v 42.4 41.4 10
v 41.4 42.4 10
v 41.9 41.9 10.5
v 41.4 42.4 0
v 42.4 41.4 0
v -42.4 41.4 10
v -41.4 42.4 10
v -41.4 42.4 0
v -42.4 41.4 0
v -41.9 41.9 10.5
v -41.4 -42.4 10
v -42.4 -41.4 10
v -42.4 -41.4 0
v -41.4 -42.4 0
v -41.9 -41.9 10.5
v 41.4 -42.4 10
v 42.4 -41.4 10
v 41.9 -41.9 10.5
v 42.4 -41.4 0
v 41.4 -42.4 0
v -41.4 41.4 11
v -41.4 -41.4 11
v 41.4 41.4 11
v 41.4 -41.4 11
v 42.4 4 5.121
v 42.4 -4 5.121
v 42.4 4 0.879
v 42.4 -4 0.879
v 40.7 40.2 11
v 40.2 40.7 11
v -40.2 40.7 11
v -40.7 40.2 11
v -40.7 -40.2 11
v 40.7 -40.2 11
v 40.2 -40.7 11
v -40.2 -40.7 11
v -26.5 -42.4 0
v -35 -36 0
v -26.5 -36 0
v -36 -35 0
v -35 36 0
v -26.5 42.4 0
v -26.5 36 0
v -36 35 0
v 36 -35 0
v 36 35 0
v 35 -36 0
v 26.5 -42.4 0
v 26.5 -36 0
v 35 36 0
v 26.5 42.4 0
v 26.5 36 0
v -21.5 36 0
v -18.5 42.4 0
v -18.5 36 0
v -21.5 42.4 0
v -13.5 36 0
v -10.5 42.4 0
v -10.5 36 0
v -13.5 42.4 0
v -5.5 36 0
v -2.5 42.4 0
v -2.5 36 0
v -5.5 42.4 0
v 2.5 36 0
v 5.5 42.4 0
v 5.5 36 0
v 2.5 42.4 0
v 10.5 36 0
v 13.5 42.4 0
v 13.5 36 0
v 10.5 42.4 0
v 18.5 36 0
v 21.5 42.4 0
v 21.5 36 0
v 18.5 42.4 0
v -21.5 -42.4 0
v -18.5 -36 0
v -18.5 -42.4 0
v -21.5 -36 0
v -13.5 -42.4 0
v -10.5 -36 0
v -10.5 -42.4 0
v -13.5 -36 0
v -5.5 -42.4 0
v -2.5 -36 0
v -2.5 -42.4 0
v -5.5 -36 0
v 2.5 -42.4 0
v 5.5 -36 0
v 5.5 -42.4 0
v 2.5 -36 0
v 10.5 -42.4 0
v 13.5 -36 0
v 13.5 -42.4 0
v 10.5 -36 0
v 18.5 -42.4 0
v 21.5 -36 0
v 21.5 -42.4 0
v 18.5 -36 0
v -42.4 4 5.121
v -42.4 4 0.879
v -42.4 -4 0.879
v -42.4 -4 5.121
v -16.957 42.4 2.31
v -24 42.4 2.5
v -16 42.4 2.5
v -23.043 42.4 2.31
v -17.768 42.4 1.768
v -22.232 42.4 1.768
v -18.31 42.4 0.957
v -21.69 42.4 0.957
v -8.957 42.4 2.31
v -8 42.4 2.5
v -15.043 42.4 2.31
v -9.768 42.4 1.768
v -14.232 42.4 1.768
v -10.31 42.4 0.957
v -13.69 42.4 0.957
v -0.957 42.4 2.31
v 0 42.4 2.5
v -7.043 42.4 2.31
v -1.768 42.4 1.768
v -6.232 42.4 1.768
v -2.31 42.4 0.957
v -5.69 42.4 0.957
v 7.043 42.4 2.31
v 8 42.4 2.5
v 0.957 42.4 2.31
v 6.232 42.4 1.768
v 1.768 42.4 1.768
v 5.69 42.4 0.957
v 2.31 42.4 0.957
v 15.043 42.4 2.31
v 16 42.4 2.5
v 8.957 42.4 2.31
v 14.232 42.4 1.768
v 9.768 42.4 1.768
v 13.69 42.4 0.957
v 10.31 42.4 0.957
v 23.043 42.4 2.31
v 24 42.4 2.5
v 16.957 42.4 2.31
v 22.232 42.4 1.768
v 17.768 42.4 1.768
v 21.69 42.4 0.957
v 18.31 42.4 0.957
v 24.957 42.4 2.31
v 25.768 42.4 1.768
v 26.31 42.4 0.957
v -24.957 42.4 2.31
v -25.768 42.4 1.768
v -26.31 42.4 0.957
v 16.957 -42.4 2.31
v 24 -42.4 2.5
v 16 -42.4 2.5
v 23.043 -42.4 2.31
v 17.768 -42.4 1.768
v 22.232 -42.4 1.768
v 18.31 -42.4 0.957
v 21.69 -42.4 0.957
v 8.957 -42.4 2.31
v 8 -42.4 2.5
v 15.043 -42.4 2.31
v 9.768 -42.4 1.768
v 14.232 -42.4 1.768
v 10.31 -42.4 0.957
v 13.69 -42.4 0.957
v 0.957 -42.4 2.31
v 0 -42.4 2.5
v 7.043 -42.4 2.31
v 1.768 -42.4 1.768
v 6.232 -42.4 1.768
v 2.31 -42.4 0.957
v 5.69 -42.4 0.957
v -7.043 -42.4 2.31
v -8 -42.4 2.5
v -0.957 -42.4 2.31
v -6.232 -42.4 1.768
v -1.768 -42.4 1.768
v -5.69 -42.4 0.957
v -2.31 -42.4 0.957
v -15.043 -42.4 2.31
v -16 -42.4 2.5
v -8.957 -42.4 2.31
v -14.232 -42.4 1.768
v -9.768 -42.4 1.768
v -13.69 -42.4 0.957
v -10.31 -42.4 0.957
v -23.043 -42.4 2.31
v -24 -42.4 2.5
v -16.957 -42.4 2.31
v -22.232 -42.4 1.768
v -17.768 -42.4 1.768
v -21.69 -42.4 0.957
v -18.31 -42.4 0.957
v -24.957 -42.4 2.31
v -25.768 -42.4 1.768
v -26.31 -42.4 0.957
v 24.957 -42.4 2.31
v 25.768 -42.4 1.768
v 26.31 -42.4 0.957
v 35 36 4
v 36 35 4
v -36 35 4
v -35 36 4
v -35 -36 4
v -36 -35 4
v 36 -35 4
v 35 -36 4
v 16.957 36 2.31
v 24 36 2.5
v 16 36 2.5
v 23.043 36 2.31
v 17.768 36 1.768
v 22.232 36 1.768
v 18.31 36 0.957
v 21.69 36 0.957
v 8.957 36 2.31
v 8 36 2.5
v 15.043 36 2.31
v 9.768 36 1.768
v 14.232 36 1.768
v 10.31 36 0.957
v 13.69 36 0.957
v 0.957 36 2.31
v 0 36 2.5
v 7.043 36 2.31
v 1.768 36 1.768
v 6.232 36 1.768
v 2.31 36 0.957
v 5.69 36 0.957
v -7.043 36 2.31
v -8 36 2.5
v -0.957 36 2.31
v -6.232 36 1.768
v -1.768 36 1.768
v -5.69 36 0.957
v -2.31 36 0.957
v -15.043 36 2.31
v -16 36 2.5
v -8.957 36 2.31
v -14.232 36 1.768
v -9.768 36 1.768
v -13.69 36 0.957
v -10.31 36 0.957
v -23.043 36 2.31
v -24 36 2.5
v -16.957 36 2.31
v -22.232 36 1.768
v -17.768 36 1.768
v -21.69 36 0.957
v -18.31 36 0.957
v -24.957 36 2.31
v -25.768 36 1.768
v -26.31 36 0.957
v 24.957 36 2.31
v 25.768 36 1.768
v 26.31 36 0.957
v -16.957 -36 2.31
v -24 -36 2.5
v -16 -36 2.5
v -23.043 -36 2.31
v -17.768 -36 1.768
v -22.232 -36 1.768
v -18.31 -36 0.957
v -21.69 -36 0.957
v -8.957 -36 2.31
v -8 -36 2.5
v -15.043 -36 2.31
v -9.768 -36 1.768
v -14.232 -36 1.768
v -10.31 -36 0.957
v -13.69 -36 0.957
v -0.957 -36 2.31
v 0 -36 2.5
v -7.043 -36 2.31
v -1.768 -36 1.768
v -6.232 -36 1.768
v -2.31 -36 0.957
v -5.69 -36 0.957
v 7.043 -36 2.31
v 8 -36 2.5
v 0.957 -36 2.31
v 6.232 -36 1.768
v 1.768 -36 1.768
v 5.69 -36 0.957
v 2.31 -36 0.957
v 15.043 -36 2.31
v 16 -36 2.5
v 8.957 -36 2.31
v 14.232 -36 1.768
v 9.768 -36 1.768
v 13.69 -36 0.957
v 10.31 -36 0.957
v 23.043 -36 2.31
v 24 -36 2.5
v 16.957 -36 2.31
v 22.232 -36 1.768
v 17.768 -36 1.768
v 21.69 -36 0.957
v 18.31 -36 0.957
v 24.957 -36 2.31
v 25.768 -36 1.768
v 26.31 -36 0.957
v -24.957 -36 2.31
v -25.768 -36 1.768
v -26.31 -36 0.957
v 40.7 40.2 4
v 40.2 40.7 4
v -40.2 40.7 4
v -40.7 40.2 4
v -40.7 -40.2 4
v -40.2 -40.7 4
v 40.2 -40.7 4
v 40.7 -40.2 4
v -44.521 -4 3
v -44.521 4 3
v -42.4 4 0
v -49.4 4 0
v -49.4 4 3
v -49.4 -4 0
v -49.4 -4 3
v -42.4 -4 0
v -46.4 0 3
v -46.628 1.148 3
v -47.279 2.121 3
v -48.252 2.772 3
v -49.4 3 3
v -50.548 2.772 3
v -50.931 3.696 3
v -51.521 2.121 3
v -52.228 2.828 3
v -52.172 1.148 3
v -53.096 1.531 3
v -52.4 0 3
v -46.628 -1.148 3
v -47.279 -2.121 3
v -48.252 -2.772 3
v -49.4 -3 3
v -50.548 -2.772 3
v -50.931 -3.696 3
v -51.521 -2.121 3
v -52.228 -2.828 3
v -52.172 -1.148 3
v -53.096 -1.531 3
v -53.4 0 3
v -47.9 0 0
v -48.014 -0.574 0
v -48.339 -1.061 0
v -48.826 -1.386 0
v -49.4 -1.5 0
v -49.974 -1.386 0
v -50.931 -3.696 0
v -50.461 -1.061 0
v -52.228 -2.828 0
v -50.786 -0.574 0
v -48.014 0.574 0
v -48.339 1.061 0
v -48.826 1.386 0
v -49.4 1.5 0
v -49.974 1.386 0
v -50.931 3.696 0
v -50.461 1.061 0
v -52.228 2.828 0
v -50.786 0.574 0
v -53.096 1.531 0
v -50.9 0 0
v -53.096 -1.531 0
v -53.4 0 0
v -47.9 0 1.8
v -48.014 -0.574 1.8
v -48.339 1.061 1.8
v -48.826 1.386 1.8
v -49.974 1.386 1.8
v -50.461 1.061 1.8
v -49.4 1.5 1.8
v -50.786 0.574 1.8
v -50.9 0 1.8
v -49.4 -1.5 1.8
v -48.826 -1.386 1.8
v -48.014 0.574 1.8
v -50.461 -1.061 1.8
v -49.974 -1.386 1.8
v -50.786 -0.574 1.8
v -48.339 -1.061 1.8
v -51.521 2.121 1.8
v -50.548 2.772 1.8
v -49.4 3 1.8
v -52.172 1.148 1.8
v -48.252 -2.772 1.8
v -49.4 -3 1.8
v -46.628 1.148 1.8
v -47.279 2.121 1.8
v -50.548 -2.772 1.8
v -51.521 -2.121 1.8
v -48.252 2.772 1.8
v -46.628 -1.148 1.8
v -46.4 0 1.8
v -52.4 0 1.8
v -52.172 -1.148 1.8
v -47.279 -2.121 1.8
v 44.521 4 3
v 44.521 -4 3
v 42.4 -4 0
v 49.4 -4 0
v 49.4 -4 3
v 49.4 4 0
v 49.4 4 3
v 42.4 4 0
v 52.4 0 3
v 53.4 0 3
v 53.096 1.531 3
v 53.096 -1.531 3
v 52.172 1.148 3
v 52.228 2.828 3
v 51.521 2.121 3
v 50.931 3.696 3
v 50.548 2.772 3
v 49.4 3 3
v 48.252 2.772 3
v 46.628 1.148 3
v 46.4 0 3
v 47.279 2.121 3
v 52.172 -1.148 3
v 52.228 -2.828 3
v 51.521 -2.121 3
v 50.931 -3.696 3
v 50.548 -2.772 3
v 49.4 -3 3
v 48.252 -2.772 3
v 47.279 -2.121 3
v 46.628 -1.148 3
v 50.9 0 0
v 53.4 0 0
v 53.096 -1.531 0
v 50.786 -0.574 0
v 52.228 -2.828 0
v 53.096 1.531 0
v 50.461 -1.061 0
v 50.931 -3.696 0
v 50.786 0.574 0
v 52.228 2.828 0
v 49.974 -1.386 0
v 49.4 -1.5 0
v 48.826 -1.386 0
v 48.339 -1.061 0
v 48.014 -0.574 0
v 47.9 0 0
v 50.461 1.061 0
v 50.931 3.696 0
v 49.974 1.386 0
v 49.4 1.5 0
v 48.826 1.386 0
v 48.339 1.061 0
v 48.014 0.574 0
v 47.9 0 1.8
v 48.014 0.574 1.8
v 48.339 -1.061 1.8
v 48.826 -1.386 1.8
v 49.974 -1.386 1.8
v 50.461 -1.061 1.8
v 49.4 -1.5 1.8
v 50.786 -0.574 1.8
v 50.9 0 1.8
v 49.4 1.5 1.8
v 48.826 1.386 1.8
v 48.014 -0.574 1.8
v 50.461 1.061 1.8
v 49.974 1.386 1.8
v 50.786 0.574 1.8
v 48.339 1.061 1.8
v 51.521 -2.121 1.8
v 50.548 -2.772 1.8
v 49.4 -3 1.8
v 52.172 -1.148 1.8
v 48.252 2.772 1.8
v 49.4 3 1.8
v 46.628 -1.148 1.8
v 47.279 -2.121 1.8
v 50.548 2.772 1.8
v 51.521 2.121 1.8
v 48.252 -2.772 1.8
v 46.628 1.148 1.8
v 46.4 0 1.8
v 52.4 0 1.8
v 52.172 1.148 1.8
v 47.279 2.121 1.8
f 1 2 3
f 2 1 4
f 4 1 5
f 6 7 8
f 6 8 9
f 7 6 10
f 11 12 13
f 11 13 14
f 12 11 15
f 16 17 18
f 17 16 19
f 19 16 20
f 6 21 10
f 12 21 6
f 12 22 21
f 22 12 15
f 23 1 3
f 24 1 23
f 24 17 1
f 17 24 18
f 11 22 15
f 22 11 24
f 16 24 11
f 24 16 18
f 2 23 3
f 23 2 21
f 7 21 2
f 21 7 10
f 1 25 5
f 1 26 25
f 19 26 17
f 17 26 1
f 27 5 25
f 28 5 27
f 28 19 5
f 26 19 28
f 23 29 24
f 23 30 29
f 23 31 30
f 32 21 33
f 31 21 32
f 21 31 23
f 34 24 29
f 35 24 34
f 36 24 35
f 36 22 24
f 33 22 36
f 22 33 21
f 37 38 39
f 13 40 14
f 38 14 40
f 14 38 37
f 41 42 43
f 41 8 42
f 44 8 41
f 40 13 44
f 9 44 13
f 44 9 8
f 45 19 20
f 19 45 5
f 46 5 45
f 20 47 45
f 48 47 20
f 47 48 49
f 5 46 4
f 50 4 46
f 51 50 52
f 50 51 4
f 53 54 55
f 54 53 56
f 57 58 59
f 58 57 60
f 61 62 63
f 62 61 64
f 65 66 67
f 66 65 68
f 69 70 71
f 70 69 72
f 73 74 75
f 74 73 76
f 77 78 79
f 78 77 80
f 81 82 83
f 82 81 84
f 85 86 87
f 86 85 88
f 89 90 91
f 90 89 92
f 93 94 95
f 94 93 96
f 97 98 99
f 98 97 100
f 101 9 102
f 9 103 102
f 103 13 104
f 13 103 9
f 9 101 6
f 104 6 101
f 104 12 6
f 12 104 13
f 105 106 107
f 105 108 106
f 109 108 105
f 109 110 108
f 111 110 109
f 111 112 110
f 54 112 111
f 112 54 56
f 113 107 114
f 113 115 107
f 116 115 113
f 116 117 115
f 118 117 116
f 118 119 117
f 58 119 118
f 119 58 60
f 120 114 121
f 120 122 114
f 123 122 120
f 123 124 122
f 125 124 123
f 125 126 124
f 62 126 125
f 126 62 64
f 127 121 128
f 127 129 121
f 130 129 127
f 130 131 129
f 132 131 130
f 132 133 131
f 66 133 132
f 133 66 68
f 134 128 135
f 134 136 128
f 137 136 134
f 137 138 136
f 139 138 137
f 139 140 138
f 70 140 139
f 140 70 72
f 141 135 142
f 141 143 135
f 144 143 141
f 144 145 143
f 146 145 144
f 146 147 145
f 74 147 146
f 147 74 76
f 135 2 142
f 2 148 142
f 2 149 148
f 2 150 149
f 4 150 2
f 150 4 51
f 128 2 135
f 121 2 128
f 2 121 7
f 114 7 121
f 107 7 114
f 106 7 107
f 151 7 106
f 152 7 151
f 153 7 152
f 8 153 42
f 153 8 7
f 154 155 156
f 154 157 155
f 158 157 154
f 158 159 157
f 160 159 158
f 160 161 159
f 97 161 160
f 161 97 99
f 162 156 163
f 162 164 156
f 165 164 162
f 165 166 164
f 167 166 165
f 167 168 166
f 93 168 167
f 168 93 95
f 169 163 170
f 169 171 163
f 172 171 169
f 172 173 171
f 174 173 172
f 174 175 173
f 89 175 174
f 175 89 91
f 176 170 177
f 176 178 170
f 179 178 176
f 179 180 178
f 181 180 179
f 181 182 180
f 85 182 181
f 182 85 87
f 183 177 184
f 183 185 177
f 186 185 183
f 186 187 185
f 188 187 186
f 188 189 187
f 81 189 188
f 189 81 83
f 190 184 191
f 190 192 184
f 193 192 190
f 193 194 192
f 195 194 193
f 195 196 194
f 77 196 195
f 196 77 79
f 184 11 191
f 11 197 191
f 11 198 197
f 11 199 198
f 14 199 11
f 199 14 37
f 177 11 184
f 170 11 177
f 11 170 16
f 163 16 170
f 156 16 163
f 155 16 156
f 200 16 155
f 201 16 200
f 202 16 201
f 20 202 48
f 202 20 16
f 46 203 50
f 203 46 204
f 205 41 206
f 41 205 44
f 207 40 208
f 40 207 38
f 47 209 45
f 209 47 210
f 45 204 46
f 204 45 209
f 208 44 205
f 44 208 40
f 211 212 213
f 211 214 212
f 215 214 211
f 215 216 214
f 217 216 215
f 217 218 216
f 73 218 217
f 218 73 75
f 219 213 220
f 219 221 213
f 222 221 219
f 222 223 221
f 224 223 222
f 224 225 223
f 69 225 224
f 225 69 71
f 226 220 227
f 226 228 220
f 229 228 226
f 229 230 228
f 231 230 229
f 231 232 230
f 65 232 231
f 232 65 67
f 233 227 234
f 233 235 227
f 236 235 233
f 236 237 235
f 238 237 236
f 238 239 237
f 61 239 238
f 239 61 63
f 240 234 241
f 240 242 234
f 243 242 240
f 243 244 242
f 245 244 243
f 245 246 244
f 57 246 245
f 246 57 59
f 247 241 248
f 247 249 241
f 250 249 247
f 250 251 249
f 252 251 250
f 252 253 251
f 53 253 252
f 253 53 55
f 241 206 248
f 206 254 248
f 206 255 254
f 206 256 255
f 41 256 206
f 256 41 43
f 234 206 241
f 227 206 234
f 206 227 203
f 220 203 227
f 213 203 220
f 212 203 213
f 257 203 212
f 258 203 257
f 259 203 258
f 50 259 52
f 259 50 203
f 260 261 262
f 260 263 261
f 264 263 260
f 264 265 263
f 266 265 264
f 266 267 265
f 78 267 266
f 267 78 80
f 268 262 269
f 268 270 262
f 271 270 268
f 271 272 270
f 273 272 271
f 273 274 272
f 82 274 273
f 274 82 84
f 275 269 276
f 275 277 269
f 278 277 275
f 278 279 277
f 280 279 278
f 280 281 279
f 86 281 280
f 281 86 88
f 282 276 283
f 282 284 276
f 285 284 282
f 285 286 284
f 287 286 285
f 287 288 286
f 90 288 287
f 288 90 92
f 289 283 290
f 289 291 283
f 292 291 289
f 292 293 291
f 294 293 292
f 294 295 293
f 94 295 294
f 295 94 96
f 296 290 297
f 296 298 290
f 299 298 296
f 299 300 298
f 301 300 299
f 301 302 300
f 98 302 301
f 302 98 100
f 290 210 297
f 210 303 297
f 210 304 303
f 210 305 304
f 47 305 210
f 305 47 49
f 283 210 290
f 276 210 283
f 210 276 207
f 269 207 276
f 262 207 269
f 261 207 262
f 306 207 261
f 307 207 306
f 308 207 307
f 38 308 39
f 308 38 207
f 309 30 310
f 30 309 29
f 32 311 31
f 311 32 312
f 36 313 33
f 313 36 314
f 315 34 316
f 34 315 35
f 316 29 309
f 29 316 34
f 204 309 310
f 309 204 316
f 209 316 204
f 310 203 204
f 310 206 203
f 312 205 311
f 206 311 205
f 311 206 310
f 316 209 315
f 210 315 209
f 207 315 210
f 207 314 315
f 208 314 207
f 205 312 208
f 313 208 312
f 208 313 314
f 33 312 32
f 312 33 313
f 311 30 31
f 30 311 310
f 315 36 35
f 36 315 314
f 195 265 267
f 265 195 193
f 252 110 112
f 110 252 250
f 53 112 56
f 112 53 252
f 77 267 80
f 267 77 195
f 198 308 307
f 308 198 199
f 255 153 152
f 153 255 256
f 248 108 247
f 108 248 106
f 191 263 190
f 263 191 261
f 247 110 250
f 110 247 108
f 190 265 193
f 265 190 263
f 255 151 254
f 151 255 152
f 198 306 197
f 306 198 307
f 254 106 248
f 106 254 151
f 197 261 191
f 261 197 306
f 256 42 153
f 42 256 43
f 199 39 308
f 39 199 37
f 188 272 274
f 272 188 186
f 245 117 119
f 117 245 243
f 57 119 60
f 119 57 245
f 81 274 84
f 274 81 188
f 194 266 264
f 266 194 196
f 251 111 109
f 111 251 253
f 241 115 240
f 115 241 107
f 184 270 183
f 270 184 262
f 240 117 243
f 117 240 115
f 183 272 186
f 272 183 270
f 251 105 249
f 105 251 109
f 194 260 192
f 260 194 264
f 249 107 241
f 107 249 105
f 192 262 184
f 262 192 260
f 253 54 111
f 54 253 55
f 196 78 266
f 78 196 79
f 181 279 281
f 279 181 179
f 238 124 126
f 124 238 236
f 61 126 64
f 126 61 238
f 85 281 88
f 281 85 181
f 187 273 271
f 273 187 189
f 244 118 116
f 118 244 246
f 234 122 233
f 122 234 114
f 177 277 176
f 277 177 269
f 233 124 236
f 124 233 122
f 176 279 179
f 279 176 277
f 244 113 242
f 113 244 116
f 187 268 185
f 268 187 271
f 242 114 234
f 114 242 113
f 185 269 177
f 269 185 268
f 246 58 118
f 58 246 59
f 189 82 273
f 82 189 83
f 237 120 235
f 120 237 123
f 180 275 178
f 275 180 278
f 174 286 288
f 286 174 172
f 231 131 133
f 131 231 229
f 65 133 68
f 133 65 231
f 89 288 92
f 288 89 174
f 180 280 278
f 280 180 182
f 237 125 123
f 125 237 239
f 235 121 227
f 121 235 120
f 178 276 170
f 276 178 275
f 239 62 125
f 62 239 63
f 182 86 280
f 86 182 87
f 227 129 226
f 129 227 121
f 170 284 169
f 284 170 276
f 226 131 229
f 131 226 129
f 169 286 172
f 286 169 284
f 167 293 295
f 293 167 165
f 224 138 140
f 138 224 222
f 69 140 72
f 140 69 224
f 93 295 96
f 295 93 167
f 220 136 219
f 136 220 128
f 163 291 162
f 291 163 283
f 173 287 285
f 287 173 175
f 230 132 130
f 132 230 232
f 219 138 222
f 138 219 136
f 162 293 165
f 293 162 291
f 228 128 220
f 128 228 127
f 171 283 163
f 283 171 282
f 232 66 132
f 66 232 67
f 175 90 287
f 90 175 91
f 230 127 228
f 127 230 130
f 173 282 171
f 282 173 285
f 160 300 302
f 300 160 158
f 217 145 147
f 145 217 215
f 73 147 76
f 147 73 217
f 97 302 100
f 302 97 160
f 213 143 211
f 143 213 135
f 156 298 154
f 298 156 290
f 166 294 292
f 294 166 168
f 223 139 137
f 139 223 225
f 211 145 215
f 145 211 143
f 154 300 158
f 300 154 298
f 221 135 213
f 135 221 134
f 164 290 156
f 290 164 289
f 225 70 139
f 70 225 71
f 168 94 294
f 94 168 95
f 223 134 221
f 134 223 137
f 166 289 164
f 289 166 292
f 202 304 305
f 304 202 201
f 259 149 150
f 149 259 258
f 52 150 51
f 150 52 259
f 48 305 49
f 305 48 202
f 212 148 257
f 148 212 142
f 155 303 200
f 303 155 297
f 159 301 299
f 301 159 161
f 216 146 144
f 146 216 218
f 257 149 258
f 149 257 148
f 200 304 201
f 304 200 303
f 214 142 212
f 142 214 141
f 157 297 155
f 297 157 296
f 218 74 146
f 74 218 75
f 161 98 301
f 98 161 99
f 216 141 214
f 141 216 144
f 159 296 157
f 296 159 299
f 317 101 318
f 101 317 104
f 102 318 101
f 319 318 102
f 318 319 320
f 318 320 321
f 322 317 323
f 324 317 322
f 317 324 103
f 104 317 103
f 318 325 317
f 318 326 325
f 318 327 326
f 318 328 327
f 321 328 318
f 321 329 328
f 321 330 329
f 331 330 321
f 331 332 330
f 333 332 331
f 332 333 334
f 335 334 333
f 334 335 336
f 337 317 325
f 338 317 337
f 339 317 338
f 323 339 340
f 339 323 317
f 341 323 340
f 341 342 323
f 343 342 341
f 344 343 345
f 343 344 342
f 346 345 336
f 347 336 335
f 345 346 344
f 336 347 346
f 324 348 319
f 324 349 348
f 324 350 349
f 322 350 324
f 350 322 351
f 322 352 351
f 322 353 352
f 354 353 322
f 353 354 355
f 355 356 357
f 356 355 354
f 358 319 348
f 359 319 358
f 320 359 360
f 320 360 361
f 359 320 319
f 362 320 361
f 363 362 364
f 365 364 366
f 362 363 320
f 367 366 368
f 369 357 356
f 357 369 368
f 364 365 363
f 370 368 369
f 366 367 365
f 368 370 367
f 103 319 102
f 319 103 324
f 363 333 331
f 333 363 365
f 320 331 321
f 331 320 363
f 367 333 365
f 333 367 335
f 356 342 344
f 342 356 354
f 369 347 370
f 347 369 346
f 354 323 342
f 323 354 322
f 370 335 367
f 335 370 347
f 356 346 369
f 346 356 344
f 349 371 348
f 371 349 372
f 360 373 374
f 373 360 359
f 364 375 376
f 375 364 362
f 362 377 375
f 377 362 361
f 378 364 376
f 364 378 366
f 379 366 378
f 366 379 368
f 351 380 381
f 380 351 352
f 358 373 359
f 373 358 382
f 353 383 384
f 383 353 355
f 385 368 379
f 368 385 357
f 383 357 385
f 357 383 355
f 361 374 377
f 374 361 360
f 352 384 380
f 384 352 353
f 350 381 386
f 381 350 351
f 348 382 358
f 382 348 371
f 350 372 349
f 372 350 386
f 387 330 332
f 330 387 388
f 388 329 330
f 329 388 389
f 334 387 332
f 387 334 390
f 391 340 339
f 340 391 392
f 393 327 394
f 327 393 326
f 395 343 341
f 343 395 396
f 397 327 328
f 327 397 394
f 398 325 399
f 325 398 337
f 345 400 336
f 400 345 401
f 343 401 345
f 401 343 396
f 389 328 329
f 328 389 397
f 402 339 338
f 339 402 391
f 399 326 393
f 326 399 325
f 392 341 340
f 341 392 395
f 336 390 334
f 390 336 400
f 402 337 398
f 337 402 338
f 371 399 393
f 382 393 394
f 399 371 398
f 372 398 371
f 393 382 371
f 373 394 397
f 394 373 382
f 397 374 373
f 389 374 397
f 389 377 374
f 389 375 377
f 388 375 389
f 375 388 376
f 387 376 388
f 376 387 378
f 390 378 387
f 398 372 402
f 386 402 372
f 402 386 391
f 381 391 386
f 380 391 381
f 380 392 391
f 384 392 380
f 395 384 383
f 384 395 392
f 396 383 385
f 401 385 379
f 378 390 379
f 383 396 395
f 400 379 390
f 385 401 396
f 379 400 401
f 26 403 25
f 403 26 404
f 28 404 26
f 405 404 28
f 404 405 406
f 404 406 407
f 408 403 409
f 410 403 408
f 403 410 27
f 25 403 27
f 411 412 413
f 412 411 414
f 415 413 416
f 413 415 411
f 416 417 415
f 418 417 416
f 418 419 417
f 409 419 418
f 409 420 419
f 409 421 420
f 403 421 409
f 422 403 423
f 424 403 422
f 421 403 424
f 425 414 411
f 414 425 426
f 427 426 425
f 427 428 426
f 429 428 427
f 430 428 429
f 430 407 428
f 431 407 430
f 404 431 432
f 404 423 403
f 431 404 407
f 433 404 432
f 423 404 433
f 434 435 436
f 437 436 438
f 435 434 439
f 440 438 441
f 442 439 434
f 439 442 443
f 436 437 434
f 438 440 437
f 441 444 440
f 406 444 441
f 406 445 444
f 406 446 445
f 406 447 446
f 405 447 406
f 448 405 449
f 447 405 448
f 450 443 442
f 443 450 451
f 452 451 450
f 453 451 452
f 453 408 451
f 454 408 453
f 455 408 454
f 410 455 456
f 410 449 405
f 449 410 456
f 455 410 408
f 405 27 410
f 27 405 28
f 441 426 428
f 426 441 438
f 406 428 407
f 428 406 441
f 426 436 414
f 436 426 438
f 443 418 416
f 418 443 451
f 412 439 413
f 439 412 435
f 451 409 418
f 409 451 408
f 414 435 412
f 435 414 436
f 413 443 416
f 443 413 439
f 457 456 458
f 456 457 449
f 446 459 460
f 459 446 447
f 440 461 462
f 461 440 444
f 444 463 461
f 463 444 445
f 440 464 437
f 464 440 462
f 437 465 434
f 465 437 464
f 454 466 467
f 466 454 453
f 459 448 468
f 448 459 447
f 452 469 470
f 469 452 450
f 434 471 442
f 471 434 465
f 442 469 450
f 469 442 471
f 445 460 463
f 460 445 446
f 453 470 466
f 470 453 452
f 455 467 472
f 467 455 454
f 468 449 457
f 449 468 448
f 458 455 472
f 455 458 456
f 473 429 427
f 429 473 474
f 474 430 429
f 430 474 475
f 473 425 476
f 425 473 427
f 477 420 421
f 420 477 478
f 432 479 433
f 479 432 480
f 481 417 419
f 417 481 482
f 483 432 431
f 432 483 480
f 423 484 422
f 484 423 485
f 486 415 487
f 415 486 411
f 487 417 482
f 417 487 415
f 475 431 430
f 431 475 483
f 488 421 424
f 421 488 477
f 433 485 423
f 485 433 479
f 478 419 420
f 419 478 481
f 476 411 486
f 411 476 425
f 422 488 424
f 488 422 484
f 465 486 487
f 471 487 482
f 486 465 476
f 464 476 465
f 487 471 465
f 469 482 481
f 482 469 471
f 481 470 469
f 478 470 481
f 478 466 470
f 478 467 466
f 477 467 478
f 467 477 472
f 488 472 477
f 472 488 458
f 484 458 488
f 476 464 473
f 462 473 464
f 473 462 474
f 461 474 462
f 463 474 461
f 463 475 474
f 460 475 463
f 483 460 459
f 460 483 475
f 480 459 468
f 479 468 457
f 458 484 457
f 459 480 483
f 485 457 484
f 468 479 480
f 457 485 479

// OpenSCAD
// file: light_matrix_lib.scad
/*

  light_matrix_lib.scad
  
*/

$fn=16;

outerLWDia = 5.0;
innerLWDia = 4.6;

xcnt=8;
ycnt=8;
xstep=10;
ystep=10;
xwidth=xcnt*xstep;
ywidth=ycnt*ystep;
matrixHeight=14;
frameWall=2;
framePedestalOuterWidth=0.4;  // used for frame and matrix (=gap for the LED matrix)
framePedestalInnerWidth=4;  // used only by frame
framePedestalHeight=7;
framePedestalInsertDelta=0.3;
frameHeight=4;

module mountLug() {
  let ( w = 8, h = 3 ) {
    difference() {
      union() {
        translate([0,0,h])
        rotate([45,0,0])
        cube([w, h, h], center=true);
        
      
        translate([-w/2, 0, 0])
        cube([w, w-1, h]);
        translate([0,w-1,0])
        cylinder(h=h, d=w);
      }
      translate([0,w-1,0])
      cylinder(d=3, h= 3*h, center=true);
      translate([0,w-1,h*0.6])
      cylinder(d=6, h= h);
    }
  }
}

module lightMatrix() {
  difference() {
    CenterCube([xwidth+framePedestalOuterWidth*2, 
      ywidth+framePedestalOuterWidth*2, 
      matrixHeight], 
      ChamferBody = 1.2, ChamferBottom=0, ChamferTop=1.2);
    for( y=[0:ycnt-1] ) {
      for( x=[0:xcnt-1] ) {
        translate([x*xstep-xwidth/2+xstep/2, y*ystep-ywidth/2+ystep/2, -0.01])
        cylinder(d1=innerLWDia, d2=outerLWDia, h=matrixHeight+0.02);    
      }
    }
  }
}

module lightFrame() {
  union() {
    difference() {
      CenterCube([
        xwidth+frameWall*2+framePedestalOuterWidth*2, 
        ywidth+frameWall*2+framePedestalOuterWidth*2, 
        frameHeight+framePedestalHeight], ChamferBody = 1, ChamferBottom=0, ChamferTop=1);
      translate([0,0,-0.01])
      CenterCube([xwidth-framePedestalInnerWidth*2, ywidth-framePedestalInnerWidth*2, frameHeight+0.02], ChamferBody = 1, ChamferBottom=0, ChamferTop=0);
      translate([0,0,frameHeight])
      CenterCube([
        xwidth+framePedestalOuterWidth*2+2*framePedestalInsertDelta, 
        ywidth+framePedestalOuterWidth*2+2*framePedestalInsertDelta, 
        framePedestalHeight+0.02], ChamferBody = 0.5, ChamferBottom=0, ChamferTop=0);

      for(i=[-3:3] ) {
        translate([i*8,0,0])
        rotate([90,0,0])
        cylinder(d=5, h=xwidth*2, center=true);
      }

    }
    
    translate([-xwidth/2-frameWall-framePedestalOuterWidth,0,0])
    rotate([0,0,90])
    mountLug();

    translate([+xwidth/2+frameWall+framePedestalOuterWidth,0,0])
    rotate([0,0,-90])
    mountLug();
  }

}
// file: base_objects.scad
/*

  base_objects.scad
  
  (c) olikraus@gmail.com

  This work is licensed under the Creative Commons Attribution-NonCommercial-ShareAlike 4.0 International License.
  To view a copy of this license, visit http://creativecommons.org/licenses/by-nc-sa/4.0/.

  SquareFrustum(bottom=[10,10], top=[0,0], h=10)
  CenterCube(dim, ChamferBody = 0, ChamferBottom=0, ChamferTop=0)
  Archoid(r=10, b=20, l=30)

*/


/*
  SquareFrustum(bottom=[10,10], top=[0,0], h=10)
  https://en.wikipedia.org/wiki/Frustum
  
  Args:
    buttom: Bottom square (width, height)
    top: Top square (width, height)
    h: Distance of the top square to z=0 plane
    ChamferBody: The amount to chamfer for edges parallel to z axis
  Notes:
    The bottom square is placed in the z=0 plane.
    The squares are centered around z axis.
  Example:
    SquareFrustum([20,20], [10,4], h=20);
    

    // create a rectangle bowl
    // same example as for CenterCube
    // SquareFrustum might be more flexible because it is not
    // restricted to the 45 degree chamfer
    
    union() {
      wallthickness=2;
      xwidth = 10;
      ywidth = 20;
      height = 5;
      translate([0,0,wallthickness])
      difference() {
        CenterCube([xwidth+2*wallthickness,ywidth+2*wallthickness,5-wallthickness]);
        CenterCube([xwidth,ywidth,5-wallthickness+0.01]);
      }    
      SquareFrustum(
        bottom=[xwidth,ywidth], 
        top=[xwidth+2*wallthickness,ywidth+2*wallthickness], 
        h=wallthickness);
    }
    
*/
module SquareFrustum_old(bottom=[10,10], top=[0,0], h=10) {
  lx = bottom[0];
  ly = bottom[1];
  ux = top[0];
  uy = top[1];
  p = [
    [ -lx/2, -ly/2,  0 ],  //0
    [ lx/2,  -ly/2,  0 ],  //1
    [ lx/2,  ly/2,  0 ],  //2
    [ -lx/2,  ly/2,  0 ],  //3
    [ -ux/2, -uy/2,  h ],  //4
    [ ux/2,  -uy/2,  h ],  //5
    [ ux/2,  uy/2,  h ],  //6
    [ -ux/2,  uy/2,  h ]]; //7
    
  f = [
    [0,1,2,3],  // bottom
    [4,5,1,0],  // front
    [7,6,5,4],  // top
    [5,6,2,1],  // right
    [6,7,3,2],  // back
    [7,4,0,3]]; // left
  polyhedron( p, f );
}

module SquareFrustum(bottom=[10,10], top=[0,0], h=10, ChamferBody=0) {
  c = ChamferBody/2;
  lx = bottom[0]-2*c;
  ly = bottom[1]-2*c;
  ux = top[0]-2*c;
  uy = top[1]-2*c;
  p = [
    [ -lx/2-c, -ly/2+c,  0 ],  //0 / 0, 0
    [ -lx/2+c, -ly/2-c,  0 ],  //0 / 1, 1
  
    [ lx/2-c,  -ly/2-c,  0 ],  //1 / 0, 2
    [ lx/2+c,  -ly/2+c,  0 ],  //1 / 1, 3
  
    [ lx/2+c,  ly/2-c,  0 ],  //2 / 0, 4
    [ lx/2-c,  ly/2+c,  0 ],  //2 / 1, 5
  
    [ -lx/2+c,  ly/2+c,  0 ],  //3 / 0, 6
    [ -lx/2-c,  ly/2-c,  0 ],  //3 / 1, 7
  
    [ -ux/2-c, -uy/2+c,  h ],  //4 / 0, 8
    [ -ux/2+c, -uy/2-c,  h ],  //4 / 1, 9
  
    [ ux/2-c,  -uy/2-c,  h ],  //5 / 0, 10
    [ ux/2+c,  -uy/2+c,  h ],  //5 / 1, 11
 
    [ ux/2+c,  uy/2-c,  h ],  //6 / 0, 12
    [ ux/2-c,  uy/2+c,  h ],  //6 / 1, 13
    
    [ -ux/2+c,  uy/2+c,  h ], //7 / 0, 14
    [ -ux/2-c,  uy/2-c,  h ]]; //7 / 1, 15
    
  f = [
    [0,1,2,3,4,5,6,7],  // bottom
    [8,9,1,0], // front left
    [9,10,2,1],  // front 
    [10,11,3,2], // front right
    [15,14,13,12,11,10,9,8],  // top
    [11,12,4,3],  // right
    [12,13,5,4],  // back right
    [13,14,6,5],  // back
    [14,15,7,6], // back left
    [15,8,0,7]]; // left
  polyhedron( p, f );
}


/*
  ChamferZCube(w=1,h=10)

  A cube, which can be used to chamfer along the z axis

  Args:
    w: The width of the cube is sqrt(2)*w
    h: Height of the cube
    d: The cube has a descent below z=0 plane and an ascent beyond h by this value
  Notes:
    The cube is centered around z-axsis and placed on z=0 plane.

*/
module ChamferZCube(w=1,h=10, d=0) {
  translate([0,0,h/2])
  rotate([0,0,45])
  cube([sqrt(2)*w,sqrt(2)*w,h+2*d], center=true);
}

module ChamferXCube(w=1,h=10, d=0) {
  rotate([45,0,0])
  cube([h+2*d,sqrt(2)*w,sqrt(2)*w], center=true);
}

module ChamferYCube(w=1,h=10, d=0) {
  rotate([0,45,0])
  cube([sqrt(2)*w,h+2*d,sqrt(2)*w], center=true);
}

/*
  CenterCube(dim, ChamferBody = 0, ChamferBottom=0, ChamferTop=0)

  A cube which is centered along z axis but is placed on z=0 plane
  Optionally allows chamfer along z axis.

  Args:
    dim: Same as for cube(dim)
    ChamferBody: The amount to chamfer for edges parallel to z axis
    ChamferBottom: The amount to chamfer for edges in z=0 plane
    ChamferTop: The amount to chamfer for edges in z=dim[2] plane
  Example:
    CenterCube([10, 20, 5]);

    // create a rectangle bowl
    // thanks to chamfer no support is required with 3d print
    difference() {  
      wallthickness=2;
      xwidth = 10;
      ywidth = 20;
      height = 5;
      CenterCube( 
        [xwidth+2*wallthickness, ywidth+2*wallthickness, height], 
        ChamferBottom = wallthickness);
      translate([0,0,wallthickness])
      CenterCube([xwidth,ywidth,height]);
    }

*/

module CenterCube(dim, ChamferBody = 0, ChamferBottom=0, ChamferTop=0) {
  difference() {
    translate([0,0,dim[2]/2])
    cube(dim, center=true);

    if ( ChamferBody > 0 ) {
      translate([dim[0]/2,dim[1]/2,0])
      ChamferZCube(w=ChamferBody,h=dim[2],d=0.01);
      
      translate([-dim[0]/2,dim[1]/2,0])
      ChamferZCube(w=ChamferBody,h=dim[2],d=0.01);

      translate([-dim[0]/2,-dim[1]/2,0])
      ChamferZCube(w=ChamferBody,h=dim[2],d=0.01);

      translate([dim[0]/2,-dim[1]/2,0])
      ChamferZCube(w=ChamferBody,h=dim[2],d=0.01);
    }
    
    if ( ChamferBottom > 0 )
    {
      translate([-dim[0]/2,0,0])
      ChamferYCube(w=ChamferBottom,h=dim[1],d=0.01);

      translate([dim[0]/2,0,0])
      ChamferYCube(w=ChamferBottom,h=dim[1],d=0.01);

      translate([0,-dim[1]/2,0])
      ChamferXCube(w=ChamferBottom,h=dim[0],d=0.01);

      translate([0,dim[1]/2,0])
      ChamferXCube(w=ChamferBottom,h=dim[0],d=0.01);
    }
    
    if ( ChamferTop > 0 )
    {
      translate([-dim[0]/2,0,dim[2]])
      ChamferYCube(w=ChamferTop,h=dim[1],d=0.01);

      translate([dim[0]/2,0,dim[2]])
      ChamferYCube(w=ChamferTop,h=dim[1],d=0.01);

      translate([0,-dim[1]/2,dim[2]])
      ChamferXCube(w=ChamferTop,h=dim[0],d=0.01);

      translate([0,dim[1]/2,dim[2]])
      ChamferXCube(w=ChamferTop,h=dim[0],d=0.01);
    }
    
  }
}

/*
  Archoid(r=10, b=20, l=30)

  A chest like element with a half cylinder on the top
  and a box as a base.
  If used with difference, the result is a archway.

  Args:
    r: Radius of the half-cylinder
    b: height of the base block
    l: length of the chest in x direction.
    $fn: resolution of the half cylinder
  Notes:
    The width of the chest is 2*r, the height is b+r.
    Archoid(r=10, b=20, l=30, $fn=4) becomes a house.

*/
module Archoid(r=10, b=20, l=30) {
  union() {
    translate([0,0,b])
    difference() {
      rotate([0,90,0])
      cylinder(r=r,h=l,center=true);
      translate([0,0,-r])
      cube([2*l,2*l,2*r], center=true);
    }
    translate([0,0,b/2])
    cube([l,2*r,b+0.01], center=true);
  }
}
// main file
/*
  
    light_frame.scad

*/

include <base_objects.scad>;
include <light_matrix_lib.scad>;

//lightMatrix();


lightFrame();
